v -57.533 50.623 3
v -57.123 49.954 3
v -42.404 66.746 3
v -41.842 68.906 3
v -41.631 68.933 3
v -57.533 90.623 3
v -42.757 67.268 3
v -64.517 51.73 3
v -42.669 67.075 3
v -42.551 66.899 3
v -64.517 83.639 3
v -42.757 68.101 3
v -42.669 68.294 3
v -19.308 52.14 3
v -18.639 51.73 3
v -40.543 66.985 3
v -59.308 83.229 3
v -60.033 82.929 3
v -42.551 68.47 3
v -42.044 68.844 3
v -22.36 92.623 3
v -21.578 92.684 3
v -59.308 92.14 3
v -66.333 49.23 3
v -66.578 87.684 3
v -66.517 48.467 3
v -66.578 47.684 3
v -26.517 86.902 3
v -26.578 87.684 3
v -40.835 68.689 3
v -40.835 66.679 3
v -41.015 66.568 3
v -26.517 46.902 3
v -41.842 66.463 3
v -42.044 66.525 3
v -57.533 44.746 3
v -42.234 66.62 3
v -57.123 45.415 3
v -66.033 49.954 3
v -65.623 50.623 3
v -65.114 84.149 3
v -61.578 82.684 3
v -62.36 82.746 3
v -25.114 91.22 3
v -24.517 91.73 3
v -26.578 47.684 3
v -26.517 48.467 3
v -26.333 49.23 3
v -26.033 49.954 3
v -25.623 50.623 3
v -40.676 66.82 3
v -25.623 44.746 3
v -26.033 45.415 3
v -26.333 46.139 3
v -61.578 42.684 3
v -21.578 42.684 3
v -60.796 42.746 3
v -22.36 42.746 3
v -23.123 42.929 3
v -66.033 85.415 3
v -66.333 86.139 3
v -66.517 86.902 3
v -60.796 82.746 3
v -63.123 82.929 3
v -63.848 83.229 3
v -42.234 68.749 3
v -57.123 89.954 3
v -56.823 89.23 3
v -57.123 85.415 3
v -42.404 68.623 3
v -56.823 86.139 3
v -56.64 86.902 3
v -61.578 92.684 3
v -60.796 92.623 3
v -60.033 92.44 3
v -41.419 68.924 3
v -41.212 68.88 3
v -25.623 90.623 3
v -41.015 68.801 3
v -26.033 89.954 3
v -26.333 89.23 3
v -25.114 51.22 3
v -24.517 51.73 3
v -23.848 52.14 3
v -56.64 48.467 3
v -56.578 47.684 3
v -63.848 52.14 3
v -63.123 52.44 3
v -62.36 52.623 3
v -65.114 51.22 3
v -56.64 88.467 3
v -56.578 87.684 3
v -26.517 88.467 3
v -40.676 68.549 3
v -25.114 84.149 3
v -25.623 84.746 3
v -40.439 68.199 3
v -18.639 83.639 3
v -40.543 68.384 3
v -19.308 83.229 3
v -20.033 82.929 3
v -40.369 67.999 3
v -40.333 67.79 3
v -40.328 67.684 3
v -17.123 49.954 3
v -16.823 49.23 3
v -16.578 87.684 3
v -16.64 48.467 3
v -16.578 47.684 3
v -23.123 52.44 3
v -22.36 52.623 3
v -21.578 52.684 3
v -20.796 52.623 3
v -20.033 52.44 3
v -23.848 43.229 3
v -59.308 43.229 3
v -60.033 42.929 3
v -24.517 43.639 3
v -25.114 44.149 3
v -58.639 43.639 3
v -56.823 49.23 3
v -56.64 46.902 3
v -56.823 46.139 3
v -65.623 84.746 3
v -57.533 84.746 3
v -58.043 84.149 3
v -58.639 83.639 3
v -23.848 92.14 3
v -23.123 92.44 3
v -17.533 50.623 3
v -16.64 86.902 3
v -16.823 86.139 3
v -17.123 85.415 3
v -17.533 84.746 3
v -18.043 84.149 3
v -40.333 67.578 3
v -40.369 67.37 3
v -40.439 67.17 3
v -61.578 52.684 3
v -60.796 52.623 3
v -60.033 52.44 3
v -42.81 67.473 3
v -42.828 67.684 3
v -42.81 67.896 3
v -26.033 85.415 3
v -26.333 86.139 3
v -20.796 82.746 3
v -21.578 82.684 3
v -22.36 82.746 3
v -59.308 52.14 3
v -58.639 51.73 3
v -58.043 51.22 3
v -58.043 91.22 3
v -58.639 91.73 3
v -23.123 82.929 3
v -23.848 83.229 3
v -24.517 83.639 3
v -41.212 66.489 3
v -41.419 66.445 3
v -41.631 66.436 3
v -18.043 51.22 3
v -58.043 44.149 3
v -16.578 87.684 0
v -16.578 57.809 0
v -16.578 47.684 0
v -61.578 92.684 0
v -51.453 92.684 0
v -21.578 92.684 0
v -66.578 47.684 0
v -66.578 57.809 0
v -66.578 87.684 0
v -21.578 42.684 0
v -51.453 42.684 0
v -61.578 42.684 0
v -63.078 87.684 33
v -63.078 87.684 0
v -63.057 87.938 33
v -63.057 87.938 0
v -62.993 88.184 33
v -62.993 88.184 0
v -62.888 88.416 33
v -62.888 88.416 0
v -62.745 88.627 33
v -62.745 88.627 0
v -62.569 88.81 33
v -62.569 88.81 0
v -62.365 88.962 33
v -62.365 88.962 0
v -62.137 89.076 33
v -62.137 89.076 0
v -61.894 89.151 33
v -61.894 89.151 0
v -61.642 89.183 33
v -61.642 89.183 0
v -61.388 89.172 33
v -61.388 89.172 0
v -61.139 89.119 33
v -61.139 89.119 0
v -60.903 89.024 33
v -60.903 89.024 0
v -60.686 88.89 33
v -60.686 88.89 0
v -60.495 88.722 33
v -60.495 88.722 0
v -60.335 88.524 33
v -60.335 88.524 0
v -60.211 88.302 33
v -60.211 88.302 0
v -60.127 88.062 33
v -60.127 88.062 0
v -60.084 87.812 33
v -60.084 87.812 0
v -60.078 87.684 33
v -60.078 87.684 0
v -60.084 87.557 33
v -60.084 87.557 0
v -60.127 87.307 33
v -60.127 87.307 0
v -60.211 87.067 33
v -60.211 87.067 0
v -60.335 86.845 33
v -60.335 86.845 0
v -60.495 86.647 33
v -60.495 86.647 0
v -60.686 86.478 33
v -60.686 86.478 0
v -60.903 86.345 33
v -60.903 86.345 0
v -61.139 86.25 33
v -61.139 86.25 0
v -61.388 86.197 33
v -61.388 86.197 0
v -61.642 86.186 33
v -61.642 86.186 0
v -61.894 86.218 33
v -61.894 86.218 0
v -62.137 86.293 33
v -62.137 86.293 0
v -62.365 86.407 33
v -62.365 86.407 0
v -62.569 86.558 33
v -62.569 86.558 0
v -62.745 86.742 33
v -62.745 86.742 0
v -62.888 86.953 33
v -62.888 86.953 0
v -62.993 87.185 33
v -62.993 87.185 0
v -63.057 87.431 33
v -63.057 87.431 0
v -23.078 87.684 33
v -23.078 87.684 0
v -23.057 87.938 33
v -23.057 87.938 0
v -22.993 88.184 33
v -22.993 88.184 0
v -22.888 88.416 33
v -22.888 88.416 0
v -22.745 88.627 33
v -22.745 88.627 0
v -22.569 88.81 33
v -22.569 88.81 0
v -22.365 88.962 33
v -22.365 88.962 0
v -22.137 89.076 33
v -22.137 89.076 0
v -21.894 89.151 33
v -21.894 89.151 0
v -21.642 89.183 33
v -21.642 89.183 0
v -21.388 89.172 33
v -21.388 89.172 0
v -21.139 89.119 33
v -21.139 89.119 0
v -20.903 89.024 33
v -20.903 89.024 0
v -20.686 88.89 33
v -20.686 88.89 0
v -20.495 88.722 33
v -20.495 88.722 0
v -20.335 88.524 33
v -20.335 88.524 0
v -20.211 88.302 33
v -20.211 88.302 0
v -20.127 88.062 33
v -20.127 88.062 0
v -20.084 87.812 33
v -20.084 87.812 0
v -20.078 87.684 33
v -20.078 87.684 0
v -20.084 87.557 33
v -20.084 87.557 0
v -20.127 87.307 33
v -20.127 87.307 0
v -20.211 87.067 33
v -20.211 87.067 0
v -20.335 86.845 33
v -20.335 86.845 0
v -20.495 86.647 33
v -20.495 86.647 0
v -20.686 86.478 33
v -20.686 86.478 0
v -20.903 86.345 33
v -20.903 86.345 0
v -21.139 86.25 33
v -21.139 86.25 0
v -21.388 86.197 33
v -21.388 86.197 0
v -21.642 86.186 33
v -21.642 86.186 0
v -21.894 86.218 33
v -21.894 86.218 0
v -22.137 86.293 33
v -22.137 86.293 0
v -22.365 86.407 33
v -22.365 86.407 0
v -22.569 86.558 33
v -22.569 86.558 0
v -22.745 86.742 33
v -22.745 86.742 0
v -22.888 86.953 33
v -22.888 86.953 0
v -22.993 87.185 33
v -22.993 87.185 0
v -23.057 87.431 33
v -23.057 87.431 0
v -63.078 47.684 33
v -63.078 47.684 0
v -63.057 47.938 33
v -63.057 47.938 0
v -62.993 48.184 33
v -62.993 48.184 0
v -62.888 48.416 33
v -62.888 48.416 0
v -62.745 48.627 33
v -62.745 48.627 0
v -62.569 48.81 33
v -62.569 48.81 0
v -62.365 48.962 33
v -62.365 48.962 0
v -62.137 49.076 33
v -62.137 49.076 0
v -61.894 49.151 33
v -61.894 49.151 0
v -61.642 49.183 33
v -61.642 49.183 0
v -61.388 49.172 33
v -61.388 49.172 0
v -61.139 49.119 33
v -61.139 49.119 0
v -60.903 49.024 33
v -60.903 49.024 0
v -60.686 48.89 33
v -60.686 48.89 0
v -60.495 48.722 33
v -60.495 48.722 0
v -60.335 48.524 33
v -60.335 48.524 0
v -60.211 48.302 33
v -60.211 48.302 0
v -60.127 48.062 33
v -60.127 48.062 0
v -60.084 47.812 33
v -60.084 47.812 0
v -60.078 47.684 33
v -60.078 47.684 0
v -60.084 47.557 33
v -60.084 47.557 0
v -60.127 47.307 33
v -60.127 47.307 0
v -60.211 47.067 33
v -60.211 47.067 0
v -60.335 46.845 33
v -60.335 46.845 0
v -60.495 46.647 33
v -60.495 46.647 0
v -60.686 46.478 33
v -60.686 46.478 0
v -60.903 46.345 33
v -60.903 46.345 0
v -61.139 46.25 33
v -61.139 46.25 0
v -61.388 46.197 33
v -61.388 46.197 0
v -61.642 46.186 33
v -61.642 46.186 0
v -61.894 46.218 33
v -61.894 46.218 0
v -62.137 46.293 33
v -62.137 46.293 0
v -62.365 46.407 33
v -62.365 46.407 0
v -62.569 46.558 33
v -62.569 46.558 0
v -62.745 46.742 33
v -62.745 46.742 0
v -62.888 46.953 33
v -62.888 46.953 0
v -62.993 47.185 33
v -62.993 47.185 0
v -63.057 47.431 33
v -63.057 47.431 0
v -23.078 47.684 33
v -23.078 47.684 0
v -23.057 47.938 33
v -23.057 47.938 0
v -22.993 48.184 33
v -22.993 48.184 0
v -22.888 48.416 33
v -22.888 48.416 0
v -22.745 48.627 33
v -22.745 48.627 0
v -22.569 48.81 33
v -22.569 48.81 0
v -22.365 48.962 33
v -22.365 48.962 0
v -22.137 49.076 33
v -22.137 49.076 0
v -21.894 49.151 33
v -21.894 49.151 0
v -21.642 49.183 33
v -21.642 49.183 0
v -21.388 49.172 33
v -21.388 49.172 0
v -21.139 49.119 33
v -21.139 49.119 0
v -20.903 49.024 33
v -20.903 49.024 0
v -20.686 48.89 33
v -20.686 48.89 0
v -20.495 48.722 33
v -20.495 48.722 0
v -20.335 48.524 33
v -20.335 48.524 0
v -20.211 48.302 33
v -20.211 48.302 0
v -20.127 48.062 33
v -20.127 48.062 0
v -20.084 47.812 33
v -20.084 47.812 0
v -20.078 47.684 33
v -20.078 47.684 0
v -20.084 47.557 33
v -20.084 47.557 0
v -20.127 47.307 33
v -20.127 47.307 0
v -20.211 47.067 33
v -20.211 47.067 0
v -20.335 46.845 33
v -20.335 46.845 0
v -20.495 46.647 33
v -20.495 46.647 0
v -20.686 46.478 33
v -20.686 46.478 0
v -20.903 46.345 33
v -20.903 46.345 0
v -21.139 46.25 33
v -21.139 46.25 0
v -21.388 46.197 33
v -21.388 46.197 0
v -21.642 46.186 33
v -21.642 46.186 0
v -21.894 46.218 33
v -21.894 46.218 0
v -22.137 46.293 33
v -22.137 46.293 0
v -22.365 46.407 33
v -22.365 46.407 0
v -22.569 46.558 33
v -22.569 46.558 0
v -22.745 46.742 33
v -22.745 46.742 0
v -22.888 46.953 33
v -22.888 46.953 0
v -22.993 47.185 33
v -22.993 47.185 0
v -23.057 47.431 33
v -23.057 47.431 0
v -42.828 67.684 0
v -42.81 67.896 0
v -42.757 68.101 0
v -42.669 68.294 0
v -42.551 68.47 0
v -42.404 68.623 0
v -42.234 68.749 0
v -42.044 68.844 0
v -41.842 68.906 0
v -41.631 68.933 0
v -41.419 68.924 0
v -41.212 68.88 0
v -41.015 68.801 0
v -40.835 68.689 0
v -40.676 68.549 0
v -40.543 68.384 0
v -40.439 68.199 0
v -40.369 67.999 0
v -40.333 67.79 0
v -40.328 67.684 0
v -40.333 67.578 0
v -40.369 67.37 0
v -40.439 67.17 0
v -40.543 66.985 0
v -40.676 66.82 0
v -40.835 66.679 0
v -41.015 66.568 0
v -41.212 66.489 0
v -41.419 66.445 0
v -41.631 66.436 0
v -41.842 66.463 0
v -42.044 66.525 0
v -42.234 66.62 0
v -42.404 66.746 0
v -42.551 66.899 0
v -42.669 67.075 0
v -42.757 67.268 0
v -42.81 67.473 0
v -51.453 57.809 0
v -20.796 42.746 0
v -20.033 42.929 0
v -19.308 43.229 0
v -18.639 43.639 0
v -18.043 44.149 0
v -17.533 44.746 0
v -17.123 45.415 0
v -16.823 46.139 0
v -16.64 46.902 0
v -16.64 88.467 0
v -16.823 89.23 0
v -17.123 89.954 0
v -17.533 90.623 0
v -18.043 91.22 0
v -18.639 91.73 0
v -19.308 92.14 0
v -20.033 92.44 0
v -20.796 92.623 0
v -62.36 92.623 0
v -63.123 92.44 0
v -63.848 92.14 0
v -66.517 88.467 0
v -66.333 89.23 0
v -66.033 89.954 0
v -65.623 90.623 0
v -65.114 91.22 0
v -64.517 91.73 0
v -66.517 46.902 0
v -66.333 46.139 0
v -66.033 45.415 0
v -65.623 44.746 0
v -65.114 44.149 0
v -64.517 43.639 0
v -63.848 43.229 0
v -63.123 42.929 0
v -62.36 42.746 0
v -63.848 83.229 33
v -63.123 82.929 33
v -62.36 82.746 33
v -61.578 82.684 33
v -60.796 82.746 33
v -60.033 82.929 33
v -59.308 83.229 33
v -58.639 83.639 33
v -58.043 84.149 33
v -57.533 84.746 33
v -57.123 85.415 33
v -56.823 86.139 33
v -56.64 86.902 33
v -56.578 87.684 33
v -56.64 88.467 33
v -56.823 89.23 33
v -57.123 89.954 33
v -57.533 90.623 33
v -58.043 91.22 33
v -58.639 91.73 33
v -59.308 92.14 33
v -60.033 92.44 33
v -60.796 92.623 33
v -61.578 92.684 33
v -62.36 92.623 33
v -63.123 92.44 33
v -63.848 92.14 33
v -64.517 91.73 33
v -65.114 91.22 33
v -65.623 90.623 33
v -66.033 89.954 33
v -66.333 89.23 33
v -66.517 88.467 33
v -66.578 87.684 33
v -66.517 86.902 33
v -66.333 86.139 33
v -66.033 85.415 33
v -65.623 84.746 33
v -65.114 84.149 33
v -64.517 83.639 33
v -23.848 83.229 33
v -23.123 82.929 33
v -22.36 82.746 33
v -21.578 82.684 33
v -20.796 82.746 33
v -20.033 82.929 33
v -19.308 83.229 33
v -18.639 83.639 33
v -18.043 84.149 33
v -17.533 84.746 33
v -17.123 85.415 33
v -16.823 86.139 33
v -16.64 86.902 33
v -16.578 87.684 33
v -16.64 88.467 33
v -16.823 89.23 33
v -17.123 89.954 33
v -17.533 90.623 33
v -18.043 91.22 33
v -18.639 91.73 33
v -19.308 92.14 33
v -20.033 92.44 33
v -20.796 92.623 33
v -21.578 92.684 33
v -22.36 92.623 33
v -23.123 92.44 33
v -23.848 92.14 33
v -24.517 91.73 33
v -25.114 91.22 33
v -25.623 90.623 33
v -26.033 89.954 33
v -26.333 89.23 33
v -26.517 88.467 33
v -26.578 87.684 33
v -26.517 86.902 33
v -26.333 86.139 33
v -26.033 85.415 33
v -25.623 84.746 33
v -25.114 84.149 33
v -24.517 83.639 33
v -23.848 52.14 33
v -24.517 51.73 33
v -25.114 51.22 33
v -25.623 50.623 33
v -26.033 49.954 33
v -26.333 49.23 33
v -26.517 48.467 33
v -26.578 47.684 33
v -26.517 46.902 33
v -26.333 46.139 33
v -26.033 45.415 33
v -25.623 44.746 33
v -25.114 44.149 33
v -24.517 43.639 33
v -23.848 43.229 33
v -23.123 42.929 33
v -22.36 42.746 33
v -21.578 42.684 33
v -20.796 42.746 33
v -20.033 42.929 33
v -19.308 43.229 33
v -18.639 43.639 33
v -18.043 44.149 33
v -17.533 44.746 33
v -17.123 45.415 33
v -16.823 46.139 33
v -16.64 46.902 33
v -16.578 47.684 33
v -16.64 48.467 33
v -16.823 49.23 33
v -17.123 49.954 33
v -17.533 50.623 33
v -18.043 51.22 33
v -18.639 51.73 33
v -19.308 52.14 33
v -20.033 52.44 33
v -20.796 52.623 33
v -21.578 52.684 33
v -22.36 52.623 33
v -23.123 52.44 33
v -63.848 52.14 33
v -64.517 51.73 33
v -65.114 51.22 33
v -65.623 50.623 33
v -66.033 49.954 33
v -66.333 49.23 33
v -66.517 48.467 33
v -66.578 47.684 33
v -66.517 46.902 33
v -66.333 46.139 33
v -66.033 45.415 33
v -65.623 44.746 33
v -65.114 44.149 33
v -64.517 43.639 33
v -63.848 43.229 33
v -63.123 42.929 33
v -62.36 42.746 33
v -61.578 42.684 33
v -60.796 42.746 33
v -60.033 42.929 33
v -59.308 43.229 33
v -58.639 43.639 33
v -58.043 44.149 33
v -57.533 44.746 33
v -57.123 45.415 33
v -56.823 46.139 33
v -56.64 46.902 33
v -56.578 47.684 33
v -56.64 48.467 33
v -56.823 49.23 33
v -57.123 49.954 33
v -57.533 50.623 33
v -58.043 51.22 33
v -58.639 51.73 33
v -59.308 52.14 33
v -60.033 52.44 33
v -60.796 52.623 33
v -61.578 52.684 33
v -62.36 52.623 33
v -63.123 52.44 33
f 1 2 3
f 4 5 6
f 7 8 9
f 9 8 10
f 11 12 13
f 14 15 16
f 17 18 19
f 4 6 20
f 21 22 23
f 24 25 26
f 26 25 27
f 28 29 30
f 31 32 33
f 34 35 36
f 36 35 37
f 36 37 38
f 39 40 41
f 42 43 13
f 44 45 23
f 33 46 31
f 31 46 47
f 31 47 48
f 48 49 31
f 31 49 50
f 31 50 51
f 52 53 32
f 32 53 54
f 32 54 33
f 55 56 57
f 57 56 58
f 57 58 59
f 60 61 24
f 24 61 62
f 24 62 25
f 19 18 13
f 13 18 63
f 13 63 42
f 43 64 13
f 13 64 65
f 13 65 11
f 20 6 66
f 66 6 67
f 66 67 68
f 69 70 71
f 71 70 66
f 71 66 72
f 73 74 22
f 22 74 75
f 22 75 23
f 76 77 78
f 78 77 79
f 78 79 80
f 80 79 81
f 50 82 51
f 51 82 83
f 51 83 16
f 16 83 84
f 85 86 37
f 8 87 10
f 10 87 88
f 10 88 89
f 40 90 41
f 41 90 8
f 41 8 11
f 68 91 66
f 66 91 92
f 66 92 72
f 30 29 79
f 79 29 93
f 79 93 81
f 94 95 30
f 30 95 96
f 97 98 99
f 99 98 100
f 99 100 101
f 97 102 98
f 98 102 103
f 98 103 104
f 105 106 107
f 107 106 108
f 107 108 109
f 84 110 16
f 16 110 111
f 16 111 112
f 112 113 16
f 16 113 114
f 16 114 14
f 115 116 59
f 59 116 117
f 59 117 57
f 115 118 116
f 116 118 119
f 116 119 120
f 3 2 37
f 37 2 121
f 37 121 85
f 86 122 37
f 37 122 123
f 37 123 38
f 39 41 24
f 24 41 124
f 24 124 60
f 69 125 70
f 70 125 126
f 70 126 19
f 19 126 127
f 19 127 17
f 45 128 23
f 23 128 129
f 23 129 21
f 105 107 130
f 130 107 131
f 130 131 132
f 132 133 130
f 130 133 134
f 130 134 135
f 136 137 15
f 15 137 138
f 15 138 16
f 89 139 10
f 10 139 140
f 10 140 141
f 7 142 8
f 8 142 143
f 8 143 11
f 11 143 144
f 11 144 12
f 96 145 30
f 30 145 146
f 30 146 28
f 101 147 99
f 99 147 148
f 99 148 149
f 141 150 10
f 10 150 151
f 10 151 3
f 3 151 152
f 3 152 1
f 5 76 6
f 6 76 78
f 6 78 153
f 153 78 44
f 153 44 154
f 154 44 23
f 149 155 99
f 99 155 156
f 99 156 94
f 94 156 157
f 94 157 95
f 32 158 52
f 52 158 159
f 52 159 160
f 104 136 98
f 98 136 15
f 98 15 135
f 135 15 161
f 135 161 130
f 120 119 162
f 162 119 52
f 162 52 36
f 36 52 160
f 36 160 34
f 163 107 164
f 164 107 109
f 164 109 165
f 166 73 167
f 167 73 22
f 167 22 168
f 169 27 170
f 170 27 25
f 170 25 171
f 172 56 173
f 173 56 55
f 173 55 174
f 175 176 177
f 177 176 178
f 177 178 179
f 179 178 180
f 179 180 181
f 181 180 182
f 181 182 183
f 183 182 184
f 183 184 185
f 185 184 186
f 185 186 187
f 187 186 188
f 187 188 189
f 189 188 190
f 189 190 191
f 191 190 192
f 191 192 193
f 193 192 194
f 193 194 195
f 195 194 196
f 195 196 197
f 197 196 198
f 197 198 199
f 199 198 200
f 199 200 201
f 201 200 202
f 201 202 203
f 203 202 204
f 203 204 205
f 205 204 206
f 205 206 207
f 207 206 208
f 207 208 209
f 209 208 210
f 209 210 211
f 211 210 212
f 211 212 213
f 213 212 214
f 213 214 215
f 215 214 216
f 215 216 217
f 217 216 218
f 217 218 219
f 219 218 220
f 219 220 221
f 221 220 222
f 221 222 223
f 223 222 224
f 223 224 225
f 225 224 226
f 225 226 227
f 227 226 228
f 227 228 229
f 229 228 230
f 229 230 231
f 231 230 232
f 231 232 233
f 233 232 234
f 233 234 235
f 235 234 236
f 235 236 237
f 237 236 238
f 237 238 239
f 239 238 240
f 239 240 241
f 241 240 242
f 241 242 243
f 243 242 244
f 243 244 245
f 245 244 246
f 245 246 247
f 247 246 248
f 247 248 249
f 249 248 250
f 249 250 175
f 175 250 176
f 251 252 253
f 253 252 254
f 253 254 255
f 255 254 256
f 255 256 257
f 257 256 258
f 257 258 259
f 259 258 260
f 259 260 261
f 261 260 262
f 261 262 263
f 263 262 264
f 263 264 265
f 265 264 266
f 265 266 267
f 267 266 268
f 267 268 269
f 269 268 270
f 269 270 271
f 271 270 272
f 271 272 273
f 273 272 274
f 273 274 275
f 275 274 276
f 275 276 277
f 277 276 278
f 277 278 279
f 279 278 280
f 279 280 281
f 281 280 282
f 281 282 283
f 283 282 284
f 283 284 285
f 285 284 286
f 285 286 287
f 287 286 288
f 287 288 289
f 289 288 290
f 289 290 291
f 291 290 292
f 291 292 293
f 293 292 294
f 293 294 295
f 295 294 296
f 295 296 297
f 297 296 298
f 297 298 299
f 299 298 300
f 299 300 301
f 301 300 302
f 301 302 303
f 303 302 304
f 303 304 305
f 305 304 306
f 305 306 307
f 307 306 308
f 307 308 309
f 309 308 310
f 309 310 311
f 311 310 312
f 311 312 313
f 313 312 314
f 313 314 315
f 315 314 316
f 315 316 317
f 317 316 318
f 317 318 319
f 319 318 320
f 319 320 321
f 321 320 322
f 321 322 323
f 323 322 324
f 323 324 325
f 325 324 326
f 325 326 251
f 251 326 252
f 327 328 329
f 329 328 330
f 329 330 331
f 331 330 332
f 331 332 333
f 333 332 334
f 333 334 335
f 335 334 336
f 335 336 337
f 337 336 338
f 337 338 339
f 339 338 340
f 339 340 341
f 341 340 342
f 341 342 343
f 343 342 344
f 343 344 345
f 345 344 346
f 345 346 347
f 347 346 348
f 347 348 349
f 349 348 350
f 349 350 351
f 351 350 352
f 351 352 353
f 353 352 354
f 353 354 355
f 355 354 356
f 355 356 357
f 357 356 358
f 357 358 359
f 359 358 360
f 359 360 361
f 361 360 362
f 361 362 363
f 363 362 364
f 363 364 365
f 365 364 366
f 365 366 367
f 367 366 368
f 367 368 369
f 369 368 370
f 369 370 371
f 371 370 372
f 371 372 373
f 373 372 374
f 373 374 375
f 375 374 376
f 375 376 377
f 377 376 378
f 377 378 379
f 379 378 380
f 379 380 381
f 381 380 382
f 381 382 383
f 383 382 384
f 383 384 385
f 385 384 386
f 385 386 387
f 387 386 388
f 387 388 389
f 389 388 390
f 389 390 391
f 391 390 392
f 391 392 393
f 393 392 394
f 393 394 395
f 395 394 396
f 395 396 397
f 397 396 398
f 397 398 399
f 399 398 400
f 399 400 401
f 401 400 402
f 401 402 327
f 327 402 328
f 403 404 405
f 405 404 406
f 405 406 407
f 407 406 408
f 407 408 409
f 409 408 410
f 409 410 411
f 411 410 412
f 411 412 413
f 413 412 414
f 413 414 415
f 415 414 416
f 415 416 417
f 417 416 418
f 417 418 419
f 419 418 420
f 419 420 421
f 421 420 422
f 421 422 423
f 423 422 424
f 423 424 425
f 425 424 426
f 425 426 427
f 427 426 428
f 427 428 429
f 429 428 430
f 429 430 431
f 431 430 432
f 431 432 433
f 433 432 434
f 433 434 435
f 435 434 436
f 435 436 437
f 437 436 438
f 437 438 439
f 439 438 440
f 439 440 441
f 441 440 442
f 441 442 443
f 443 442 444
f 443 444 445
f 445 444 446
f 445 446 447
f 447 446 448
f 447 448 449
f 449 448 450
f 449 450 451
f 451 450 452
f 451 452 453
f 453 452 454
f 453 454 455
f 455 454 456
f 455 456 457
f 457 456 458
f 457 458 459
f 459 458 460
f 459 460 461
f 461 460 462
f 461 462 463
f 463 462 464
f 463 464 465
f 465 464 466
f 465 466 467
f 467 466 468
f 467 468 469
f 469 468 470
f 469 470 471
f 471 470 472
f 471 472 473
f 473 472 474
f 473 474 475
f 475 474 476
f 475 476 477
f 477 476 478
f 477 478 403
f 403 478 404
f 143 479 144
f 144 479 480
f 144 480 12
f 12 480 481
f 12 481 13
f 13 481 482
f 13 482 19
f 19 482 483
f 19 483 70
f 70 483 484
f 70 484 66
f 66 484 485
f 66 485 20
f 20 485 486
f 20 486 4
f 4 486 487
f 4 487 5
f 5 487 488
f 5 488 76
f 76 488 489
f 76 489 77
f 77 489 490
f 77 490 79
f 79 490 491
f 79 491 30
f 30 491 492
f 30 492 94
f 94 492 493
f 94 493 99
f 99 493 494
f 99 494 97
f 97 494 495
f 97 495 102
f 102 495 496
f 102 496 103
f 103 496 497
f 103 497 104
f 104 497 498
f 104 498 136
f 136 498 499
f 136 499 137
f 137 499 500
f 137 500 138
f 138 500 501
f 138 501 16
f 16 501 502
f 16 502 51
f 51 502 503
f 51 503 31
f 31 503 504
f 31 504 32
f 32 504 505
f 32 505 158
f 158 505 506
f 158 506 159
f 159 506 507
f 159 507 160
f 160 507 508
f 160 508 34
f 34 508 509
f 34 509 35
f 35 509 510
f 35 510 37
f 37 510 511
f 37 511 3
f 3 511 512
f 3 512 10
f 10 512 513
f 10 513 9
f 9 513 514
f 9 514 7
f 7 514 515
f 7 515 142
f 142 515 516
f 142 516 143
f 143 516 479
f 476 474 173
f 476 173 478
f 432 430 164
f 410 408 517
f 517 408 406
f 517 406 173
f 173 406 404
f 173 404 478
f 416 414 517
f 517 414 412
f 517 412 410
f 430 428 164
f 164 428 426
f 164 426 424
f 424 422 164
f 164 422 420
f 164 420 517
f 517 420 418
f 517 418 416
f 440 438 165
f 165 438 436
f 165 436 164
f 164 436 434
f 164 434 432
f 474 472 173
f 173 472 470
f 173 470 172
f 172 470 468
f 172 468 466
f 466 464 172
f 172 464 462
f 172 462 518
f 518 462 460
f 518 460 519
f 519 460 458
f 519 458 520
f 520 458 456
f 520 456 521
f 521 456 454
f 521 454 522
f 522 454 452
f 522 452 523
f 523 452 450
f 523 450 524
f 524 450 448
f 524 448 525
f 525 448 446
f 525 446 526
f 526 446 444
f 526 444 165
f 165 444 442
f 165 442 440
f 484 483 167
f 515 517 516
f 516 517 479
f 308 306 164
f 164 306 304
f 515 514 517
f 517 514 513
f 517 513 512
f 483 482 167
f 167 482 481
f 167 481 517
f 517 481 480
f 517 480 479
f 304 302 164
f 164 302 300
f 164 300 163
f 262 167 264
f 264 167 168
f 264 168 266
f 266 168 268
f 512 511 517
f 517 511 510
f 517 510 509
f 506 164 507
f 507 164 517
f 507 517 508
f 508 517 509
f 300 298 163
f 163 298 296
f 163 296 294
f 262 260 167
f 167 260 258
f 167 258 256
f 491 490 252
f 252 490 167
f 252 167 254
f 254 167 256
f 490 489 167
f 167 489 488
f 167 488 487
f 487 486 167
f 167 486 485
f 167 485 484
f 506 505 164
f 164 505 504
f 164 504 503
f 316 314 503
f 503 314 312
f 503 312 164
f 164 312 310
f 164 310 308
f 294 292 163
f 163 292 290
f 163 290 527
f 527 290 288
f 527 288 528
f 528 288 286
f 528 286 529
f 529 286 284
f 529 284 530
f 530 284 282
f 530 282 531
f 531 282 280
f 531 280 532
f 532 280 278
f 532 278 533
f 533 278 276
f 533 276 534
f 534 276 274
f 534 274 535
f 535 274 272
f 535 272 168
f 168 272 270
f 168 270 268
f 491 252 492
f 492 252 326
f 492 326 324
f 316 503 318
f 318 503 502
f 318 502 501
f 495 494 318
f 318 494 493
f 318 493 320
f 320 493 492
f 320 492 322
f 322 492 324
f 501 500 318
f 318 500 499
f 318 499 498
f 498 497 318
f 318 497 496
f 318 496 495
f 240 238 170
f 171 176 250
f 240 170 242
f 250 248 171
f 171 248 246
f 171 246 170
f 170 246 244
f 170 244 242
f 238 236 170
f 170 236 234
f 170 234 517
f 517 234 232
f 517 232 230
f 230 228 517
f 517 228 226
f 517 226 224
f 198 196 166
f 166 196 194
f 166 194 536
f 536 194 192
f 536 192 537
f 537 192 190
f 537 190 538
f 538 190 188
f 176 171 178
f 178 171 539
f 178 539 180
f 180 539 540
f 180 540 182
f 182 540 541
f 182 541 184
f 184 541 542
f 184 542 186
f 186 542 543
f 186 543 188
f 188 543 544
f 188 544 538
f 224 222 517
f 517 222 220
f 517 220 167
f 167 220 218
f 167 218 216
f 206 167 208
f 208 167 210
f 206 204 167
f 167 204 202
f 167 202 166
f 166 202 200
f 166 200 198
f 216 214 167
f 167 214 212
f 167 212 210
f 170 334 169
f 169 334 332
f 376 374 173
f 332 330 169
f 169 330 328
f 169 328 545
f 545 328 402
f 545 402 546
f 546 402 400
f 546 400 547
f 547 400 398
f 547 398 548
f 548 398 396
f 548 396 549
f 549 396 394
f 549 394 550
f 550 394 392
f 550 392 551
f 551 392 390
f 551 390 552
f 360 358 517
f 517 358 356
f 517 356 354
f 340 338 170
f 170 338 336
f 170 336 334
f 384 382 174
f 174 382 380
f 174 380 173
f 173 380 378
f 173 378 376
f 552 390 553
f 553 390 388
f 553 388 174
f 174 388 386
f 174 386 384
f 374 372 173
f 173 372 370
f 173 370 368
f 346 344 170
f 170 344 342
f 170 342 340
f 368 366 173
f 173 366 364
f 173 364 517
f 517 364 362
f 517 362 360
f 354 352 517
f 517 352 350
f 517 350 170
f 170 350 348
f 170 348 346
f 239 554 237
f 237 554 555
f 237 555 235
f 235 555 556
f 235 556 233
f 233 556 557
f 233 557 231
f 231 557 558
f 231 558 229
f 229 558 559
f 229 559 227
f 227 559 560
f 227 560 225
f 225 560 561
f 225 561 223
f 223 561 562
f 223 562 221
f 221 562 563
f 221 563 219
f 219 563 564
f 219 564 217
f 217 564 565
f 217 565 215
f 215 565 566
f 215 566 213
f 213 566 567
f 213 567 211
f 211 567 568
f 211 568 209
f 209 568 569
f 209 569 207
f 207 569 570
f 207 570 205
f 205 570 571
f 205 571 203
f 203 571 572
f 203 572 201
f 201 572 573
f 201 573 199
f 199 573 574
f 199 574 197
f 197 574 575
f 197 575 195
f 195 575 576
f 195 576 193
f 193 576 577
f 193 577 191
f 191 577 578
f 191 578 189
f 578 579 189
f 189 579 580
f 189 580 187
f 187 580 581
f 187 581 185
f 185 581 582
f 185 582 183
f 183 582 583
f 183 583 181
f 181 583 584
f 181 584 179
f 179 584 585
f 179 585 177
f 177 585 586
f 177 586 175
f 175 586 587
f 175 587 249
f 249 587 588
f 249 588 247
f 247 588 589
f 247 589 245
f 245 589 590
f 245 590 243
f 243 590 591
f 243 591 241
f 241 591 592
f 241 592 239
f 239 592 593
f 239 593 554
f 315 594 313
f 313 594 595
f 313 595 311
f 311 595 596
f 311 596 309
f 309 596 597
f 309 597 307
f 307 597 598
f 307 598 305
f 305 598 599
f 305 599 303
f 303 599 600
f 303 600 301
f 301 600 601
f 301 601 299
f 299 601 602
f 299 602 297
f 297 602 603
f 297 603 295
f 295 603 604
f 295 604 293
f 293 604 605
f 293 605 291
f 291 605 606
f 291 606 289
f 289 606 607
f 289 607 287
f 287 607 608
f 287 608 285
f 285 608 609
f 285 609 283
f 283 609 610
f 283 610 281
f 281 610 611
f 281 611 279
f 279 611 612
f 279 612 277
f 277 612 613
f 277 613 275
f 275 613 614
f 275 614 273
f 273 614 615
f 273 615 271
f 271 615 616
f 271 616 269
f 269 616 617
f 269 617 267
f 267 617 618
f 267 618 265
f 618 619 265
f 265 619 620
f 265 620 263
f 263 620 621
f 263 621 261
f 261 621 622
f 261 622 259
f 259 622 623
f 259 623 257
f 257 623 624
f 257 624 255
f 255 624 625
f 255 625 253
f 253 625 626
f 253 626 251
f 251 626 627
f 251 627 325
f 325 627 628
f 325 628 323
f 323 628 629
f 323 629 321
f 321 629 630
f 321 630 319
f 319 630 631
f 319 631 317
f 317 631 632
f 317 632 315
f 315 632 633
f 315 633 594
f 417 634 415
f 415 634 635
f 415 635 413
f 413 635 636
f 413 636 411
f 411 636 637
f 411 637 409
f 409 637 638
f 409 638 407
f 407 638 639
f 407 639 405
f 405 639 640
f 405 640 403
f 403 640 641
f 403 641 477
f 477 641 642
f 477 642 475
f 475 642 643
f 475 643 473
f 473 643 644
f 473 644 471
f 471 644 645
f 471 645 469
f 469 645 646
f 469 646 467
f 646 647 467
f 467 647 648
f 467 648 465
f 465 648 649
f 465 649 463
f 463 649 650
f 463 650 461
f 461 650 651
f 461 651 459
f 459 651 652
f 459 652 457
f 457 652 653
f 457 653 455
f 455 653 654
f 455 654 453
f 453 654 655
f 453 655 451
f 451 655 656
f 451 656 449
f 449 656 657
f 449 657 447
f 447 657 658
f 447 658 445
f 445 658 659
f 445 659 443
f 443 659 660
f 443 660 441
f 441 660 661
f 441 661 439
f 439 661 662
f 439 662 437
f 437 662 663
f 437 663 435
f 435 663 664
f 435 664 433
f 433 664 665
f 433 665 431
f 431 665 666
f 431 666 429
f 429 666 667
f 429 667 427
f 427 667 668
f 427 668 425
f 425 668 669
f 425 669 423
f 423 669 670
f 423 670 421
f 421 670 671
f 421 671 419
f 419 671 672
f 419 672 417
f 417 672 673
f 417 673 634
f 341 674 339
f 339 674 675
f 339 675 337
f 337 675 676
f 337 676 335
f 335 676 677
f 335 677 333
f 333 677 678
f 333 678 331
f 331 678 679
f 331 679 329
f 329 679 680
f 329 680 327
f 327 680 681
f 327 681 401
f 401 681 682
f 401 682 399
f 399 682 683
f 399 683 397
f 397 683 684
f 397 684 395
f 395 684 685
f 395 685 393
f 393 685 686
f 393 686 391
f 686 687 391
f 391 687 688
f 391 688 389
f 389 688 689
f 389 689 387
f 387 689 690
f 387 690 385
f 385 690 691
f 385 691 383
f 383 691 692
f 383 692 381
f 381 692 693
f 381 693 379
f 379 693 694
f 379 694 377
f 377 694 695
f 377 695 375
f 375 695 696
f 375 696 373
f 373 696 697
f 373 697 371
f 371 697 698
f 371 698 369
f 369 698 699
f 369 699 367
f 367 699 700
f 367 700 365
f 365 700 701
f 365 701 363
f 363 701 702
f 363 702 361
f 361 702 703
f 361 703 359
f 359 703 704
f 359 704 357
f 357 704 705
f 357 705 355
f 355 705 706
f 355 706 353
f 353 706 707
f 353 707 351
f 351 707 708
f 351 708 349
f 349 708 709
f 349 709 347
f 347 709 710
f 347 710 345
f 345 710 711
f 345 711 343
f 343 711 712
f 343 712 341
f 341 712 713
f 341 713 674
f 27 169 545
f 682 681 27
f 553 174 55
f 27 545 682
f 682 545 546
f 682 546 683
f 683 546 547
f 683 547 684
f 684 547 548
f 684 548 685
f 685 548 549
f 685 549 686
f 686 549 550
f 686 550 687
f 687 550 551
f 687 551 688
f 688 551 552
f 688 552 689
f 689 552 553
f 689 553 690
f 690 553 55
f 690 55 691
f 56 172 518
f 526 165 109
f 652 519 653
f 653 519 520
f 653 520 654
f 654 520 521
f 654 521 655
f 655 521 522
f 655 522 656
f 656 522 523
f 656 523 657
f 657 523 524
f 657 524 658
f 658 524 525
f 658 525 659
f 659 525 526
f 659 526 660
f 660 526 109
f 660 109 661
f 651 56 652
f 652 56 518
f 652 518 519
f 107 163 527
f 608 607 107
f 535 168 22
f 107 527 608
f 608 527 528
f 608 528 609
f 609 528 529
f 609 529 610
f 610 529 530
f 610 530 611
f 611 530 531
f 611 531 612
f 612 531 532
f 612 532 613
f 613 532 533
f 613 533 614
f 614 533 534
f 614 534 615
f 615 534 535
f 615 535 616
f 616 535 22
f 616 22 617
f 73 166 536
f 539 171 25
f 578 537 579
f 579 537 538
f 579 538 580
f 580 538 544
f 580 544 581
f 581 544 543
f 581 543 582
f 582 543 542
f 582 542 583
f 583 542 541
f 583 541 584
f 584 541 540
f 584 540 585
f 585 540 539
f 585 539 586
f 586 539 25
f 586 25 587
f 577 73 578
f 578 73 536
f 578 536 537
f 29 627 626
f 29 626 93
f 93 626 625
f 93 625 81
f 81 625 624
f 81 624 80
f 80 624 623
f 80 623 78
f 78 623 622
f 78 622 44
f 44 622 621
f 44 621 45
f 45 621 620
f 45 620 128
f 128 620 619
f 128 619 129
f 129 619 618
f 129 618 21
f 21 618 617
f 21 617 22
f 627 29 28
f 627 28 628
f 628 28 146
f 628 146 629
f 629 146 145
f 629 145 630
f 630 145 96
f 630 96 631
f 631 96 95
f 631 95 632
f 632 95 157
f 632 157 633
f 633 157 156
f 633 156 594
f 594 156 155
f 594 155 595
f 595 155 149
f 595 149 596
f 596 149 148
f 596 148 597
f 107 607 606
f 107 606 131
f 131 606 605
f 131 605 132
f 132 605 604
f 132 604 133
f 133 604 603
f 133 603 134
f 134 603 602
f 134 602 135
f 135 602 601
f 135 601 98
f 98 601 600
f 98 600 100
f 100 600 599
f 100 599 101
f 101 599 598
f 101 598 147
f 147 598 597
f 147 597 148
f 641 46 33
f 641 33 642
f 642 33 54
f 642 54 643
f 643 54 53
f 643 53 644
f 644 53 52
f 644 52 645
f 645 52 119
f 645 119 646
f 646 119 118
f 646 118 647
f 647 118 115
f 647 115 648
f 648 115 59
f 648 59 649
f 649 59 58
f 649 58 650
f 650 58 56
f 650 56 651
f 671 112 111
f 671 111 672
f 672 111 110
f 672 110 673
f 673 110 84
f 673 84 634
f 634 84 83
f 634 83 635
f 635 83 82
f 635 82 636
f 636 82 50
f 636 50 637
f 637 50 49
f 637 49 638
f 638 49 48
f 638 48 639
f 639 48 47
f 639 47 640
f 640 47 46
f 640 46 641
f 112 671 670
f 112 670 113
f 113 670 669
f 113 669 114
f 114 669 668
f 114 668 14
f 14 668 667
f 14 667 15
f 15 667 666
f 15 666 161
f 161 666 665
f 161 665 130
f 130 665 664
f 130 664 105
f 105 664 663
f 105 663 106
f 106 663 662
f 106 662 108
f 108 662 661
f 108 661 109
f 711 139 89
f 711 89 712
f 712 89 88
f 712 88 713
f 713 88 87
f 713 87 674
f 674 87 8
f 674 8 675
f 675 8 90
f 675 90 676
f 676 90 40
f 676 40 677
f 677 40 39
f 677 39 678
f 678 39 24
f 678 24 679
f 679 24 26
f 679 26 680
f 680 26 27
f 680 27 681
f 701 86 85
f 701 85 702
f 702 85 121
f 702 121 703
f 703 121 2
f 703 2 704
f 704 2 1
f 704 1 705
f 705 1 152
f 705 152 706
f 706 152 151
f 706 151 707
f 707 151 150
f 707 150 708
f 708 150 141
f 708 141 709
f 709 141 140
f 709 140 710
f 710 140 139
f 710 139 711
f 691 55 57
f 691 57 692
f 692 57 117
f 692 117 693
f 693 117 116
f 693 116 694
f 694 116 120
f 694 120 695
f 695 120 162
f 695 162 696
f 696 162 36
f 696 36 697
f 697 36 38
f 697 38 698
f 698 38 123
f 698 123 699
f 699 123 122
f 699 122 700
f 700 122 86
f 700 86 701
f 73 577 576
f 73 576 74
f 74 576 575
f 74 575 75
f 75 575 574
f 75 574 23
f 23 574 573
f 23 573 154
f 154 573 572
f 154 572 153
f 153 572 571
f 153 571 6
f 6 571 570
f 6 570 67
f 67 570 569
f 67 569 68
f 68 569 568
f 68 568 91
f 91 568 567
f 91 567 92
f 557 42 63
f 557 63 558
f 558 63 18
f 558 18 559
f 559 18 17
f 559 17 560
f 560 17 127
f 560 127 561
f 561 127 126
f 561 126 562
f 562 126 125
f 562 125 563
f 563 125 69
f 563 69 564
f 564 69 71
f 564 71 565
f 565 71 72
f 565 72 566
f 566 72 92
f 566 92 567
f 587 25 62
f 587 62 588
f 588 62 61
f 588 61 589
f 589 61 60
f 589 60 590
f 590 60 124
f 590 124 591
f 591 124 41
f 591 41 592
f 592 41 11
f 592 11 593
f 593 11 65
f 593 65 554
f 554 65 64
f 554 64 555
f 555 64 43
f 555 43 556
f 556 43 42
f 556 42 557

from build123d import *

# Parameters (mm, degrees)
SKETCH2_W           = 50
SKETCH2_H           = 50
SKETCH2_R           = 1.5
SKETCH2_R_2         = 1.25
BOSS_EXTRUDE1_DEPTH = 3
SKETCH3_W           = 10
SKETCH3_H           = 10
SKETCH3_R           = 1.5
BOSS_EXTRUDE2_DEPTH = 30
FILLET2_R           = 5
FILLET3_R           = 5


with BuildPart() as part:
    # Sketch2 → Boss-Extrude1 (new body)
    with BuildSketch(Plane.XY):
        with Locations((-41.57818593, 67.684487612)):
            Rectangle(SKETCH2_W, SKETCH2_H)
        with Locations((-61.57818593, 87.684487612)):
            Circle(SKETCH2_R, mode=Mode.SUBTRACT)
        with Locations((-21.57818593, 87.684487612)):
            Circle(SKETCH2_R, mode=Mode.SUBTRACT)
        with Locations((-61.57818593, 47.684487612)):
            Circle(SKETCH2_R, mode=Mode.SUBTRACT)
        with Locations((-21.57818593, 47.684487612)):
            Circle(SKETCH2_R, mode=Mode.SUBTRACT)
        with Locations((-41.57818593, 67.684487612)):
            Circle(SKETCH2_R_2, mode=Mode.SUBTRACT)
    extrude(amount=BOSS_EXTRUDE1_DEPTH)

    # Sketch3 → Boss-Extrude2 (add)
    # profile 1 of 4: a face of its own
    with BuildSketch(Plane.XY.offset(3)):
        with Locations((-61.57818593, 87.684487612)):
            Rectangle(SKETCH3_W, SKETCH3_H)
        with Locations((-61.57818593, 87.684487612)):
            Circle(SKETCH3_R, mode=Mode.SUBTRACT)
    # profile 2 of 4: a face of its own
    with BuildSketch(Plane.XY.offset(3)):
        with Locations((-21.57818593, 87.684487612)):
            Rectangle(SKETCH3_W, SKETCH3_H)
        with Locations((-21.57818593, 87.684487612)):
            Circle(SKETCH3_R, mode=Mode.SUBTRACT)
    # profile 3 of 4: a face of its own
    with BuildSketch(Plane.XY.offset(3)):
        with Locations((-21.57818593, 47.684487612)):
            Rectangle(SKETCH3_W, SKETCH3_H)
        with Locations((-21.57818593, 47.684487612)):
            Circle(SKETCH3_R, mode=Mode.SUBTRACT)
    # profile 4 of 4: a face of its own
    with BuildSketch(Plane.XY.offset(3)):
        with Locations((-61.57818593, 47.684487612)):
            Rectangle(SKETCH3_W, SKETCH3_H)
        with Locations((-61.57818593, 47.684487612)):
            Circle(SKETCH3_R, mode=Mode.SUBTRACT)
    extrude(amount=BOSS_EXTRUDE2_DEPTH)

    # Fillet2
    fillet2_edges = [part.edges().sort_by_distance(p)[0] for p in [
        (-16.57818593, 42.684487612, 16.5),
        (-66.57818593, 42.684487612, 16.5),
        (-66.57818593, 92.684487612, 16.5),
        (-16.57818593, 92.684487612, 16.5),
    ]]
    fillet(fillet2_edges, radius=FILLET2_R)

    # Fillet3
    fillet3_edges = [part.edges().sort_by_distance(p)[0] for p in [
        (-16.57818593, 82.684487612, 18),
        (-26.57818593, 82.684487612, 18),
        (-26.57818593, 92.684487612, 18),
        (-16.57818593, 52.684487612, 18),
        (-26.57818593, 52.684487612, 18),
        (-26.57818593, 42.684487612, 18),
        (-56.57818593, 42.684487612, 18),
        (-56.57818593, 52.684487612, 18),
        (-66.57818593, 52.684487612, 18),
        (-66.57818593, 82.684487612, 18),
        (-56.57818593, 82.684487612, 18),
        (-56.57818593, 92.684487612, 18),
    ]]
    fillet(fillet3_edges, radius=FILLET3_R - 0.0001)  # a hair under: the kernel refuses the full size


solid = part.part
